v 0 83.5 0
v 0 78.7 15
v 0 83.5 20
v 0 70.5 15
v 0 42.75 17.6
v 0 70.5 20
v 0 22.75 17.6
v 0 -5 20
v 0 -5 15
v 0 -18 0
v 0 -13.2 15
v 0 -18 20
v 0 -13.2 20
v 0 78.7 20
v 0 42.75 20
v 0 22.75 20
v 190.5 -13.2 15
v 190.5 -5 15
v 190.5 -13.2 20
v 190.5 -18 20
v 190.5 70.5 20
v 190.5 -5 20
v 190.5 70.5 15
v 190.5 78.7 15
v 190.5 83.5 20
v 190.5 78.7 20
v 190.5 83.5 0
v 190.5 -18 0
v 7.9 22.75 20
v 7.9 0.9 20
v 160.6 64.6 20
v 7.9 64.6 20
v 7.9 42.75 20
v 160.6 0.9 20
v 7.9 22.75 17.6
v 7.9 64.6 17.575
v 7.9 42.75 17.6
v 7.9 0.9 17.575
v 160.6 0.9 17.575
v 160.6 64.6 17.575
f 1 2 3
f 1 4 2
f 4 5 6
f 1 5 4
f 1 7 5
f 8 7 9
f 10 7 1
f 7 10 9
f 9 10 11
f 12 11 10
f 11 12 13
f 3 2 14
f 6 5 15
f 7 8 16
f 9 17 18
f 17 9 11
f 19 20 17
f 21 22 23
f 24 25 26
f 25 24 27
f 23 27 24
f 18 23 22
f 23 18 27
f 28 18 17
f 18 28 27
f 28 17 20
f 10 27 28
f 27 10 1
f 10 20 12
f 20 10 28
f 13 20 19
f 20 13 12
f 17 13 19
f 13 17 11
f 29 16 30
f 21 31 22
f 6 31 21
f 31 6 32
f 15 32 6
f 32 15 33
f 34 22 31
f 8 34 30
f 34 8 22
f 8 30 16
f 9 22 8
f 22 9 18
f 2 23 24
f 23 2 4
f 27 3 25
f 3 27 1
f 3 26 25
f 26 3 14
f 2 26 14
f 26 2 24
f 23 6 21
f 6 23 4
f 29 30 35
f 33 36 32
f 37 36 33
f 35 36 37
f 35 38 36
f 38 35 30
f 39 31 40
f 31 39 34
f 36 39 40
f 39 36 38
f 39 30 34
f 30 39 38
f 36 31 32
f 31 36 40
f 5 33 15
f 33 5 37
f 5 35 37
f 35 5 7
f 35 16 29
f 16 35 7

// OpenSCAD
/*                    USER CONFIGURABLE VARIABLES

	Change these according to your situation. 
	All dimensions are in mm. Angles are in degrees. 
*/



// "Plate" here could also mean a sharpening stone. 
plateHeight = 2.4;
plateWidth  = 63.5;
plateLength = 152.5;



// This list determines the angle bracket jigs to generate. 
// Each value, d, here results in a bracket with angle d being 
// generated. Remove all values to not generate any brackets.
bracketAngles = [25, 30];


/*                 END OF USER CONFIGURABLE VARIABLES 

  
                    ⠀⠀⠀⠀⠀⠀⠀⠀⠀⠀⠀⠀⠀⠀⠀⠀⠀⢰
                    ⠀⠀⠀⠀⠀⠀⠀⠀⠀⠀⠀⠀⠀⠀⠀⠀⠀⢸⠇
                    ⠀⠀⠀⠀⠀⠙⢧⡀⠀⠀⠀⠀⠀⠀⠀⠀⠀⠀⢟⠦⡀
                    ⠀⠠⢤⣀⣀⡠⠛⢫⢆⠀⠀⠀⠀⠀⠀⠀⠀⠀⠈⢧⠀⠑⠢⢄⣀⡆
                    ⠀⠀⠀⠙⡾⣥⠈⠀⡉⡆⠀⢠⠦⣀⠀⠀⠀⠀⠀⠀⠑⡄⠀⣸⠞⡇
                    ⠀⠀⠀⠀⠸⠈⠳⡄⠀⢡⠀⠀⣎⠲⣙⣿⣶⠦⠀⠀⠀⠘⡄⠀⠀⢁
                    ⠀⠀⠀⠀⠀⡏⠀⢈⠢⠘⡄⠀⠈⢦⠽⣻⠺⣆⣄⠀⠀⠀⡧⠁⠒⢞⡄
                    ⠀⠀⠀⠀⢰⣆⣀⠤⡄⠀⠳⡀⠀⠀⠏⢟⢄⠉⣮⢦⠀⢀⡃⠠⠀⠀⢙⣦
                    ⠀⠀⠀⠈⠉⢋⡉⠉⢀⠒⠂⢣⡀⠀⠀⢸⡄⠆⣮⣇⢀⠎⠀⠀⡀⢠⠂
                    ⠀⠀⠀⠀⠀⠀⢃⡄⠀⢀⡄⠀⠙⠢⠤⡜⠠⠈⢰⣥⠊⠀⠐⠁⣔⡇
                    ⠀⠀⠀⠀⠀⠀⢸⣶⠾⠓⠉⠑⡀⠁⣀⡄⠀⡀⢸⣹⠆⠀⠀⠀⢛⡂
                    ⠀⠀⠀⠀⠀⠀⠞⠃⠀⠒⠒⢤⣄⡀⠋⢱⢀⠀⠸⢻⣭⢁⠔⠈⠙⡇
                    ⠀⠀⠀⠀⠀⠀⠀⠀⠀⠀⠀⠀⠙⢿⣦⡆⡎⠜⣧⠿⣾⡃
                    ⠀⠀⠀⠀⠀⠀⠀⠀⠀⠀⠀⠀⠀⠈⢿⠐⠀⣰⡜⠀⠘⡇
                    ⠀⠀⠀⠀⠀⠀⠀⠀⠀⠀⠀⠀⠀⢠⠃⠀⠠⡍
                    ⠀⠀⠀⠀⠀⠀⠀⠀⠀⠀⠀⢀⡴⣅⠐⠰⠋
                    ⠀⠀⠀⠀⠀⠀⠀⠀⠀⠀⡠⠊⠀⡡⠒⠁
                    ⠀⠀⠀⠀⠀⠀⠀⢀⣤⣋⣄⠤⠊
                    ⠀⠀⠀⠀⠀⣠⣶⠟⠛⠉
                    ⠀⠀⠀⣠⡾⠟
                    ⠀⢠⡾⠋
                    ⢠⠏
                    ⡯
                    ⠡  ... Here be Dragons ... */




base();
// plate();



slackXY = 0.2;
slackZ = 0.05;

baseLengthExtraBack = 30;
baseLengthExtraFront = 8;
baseSideThickness = 1;

baseLength = plateLength + baseLengthExtraBack + baseLengthExtraFront;
baseWidth  = plateWidth + 2*baseSideThickness;
baseHeight = 20; 


bracketGuideRailWidth = 18;
bracketGuideRailDepression = 5;
bracketGuideRailWallThickness = 5;
bracketGuideRailWallHeight = 5;

module plate() {
	color("salmon")
	cube([plateLength, plateWidth, plateHeight]);
}

module base() {

	module bracketGuideRail() {
		// Bottom of guide rail
		cube([baseLength, bracketGuideRailWidth, baseHeight-bracketGuideRailDepression]);

		// Walls of guide rail
		cube([
			baseLength, 
			bracketGuideRailWallThickness-slackXY, 
			baseHeight-bracketGuideRailDepression+bracketGuideRailWallHeight
		]);

		translate([0,bracketGuideRailWidth-bracketGuideRailWallThickness,0])
		cube([
			baseLength, 
			bracketGuideRailWallThickness, 
			baseHeight-bracketGuideRailDepression+bracketGuideRailWallHeight
		]);

		// // A stop at the back of the guide rail
		// translate([baseLength-5,0,baseHeight-bracketGuideRailDepression])
		// cube([5, bracketGuideRailWidth, bracketGuideRailWallHeight]);
	}

	difference() {

		union() {

			// Actual body of base
			cube([baseLength, baseWidth, baseHeight]);


			// Left and right guide rails
			translate([0, -bracketGuideRailWidth, 0])
			bracketGuideRail();
			
			translate([0, baseWidth+bracketGuideRailWidth, 0])
			mirror([0,1,0])
			bracketGuideRail();
		}

		union() {

			// Depression for sharpening plate
			translate([baseLengthExtraFront, baseSideThickness, baseHeight-plateHeight])
			translate([-slackXY/2, -slackXY/2, -slackZ/2])
			cube([plateLength+slackXY, plateWidth+slackXY, plateHeight+slackZ]);


			// Indent for removing plate from base
			indentWidth = 20;
			translate([0, (baseWidth-indentWidth)/2,baseHeight-plateHeight])
			cube([baseLengthExtraFront, indentWidth, plateHeight+slackZ]);
		}
	}


	
}

module bracket(angle) {
	// TODO
}
